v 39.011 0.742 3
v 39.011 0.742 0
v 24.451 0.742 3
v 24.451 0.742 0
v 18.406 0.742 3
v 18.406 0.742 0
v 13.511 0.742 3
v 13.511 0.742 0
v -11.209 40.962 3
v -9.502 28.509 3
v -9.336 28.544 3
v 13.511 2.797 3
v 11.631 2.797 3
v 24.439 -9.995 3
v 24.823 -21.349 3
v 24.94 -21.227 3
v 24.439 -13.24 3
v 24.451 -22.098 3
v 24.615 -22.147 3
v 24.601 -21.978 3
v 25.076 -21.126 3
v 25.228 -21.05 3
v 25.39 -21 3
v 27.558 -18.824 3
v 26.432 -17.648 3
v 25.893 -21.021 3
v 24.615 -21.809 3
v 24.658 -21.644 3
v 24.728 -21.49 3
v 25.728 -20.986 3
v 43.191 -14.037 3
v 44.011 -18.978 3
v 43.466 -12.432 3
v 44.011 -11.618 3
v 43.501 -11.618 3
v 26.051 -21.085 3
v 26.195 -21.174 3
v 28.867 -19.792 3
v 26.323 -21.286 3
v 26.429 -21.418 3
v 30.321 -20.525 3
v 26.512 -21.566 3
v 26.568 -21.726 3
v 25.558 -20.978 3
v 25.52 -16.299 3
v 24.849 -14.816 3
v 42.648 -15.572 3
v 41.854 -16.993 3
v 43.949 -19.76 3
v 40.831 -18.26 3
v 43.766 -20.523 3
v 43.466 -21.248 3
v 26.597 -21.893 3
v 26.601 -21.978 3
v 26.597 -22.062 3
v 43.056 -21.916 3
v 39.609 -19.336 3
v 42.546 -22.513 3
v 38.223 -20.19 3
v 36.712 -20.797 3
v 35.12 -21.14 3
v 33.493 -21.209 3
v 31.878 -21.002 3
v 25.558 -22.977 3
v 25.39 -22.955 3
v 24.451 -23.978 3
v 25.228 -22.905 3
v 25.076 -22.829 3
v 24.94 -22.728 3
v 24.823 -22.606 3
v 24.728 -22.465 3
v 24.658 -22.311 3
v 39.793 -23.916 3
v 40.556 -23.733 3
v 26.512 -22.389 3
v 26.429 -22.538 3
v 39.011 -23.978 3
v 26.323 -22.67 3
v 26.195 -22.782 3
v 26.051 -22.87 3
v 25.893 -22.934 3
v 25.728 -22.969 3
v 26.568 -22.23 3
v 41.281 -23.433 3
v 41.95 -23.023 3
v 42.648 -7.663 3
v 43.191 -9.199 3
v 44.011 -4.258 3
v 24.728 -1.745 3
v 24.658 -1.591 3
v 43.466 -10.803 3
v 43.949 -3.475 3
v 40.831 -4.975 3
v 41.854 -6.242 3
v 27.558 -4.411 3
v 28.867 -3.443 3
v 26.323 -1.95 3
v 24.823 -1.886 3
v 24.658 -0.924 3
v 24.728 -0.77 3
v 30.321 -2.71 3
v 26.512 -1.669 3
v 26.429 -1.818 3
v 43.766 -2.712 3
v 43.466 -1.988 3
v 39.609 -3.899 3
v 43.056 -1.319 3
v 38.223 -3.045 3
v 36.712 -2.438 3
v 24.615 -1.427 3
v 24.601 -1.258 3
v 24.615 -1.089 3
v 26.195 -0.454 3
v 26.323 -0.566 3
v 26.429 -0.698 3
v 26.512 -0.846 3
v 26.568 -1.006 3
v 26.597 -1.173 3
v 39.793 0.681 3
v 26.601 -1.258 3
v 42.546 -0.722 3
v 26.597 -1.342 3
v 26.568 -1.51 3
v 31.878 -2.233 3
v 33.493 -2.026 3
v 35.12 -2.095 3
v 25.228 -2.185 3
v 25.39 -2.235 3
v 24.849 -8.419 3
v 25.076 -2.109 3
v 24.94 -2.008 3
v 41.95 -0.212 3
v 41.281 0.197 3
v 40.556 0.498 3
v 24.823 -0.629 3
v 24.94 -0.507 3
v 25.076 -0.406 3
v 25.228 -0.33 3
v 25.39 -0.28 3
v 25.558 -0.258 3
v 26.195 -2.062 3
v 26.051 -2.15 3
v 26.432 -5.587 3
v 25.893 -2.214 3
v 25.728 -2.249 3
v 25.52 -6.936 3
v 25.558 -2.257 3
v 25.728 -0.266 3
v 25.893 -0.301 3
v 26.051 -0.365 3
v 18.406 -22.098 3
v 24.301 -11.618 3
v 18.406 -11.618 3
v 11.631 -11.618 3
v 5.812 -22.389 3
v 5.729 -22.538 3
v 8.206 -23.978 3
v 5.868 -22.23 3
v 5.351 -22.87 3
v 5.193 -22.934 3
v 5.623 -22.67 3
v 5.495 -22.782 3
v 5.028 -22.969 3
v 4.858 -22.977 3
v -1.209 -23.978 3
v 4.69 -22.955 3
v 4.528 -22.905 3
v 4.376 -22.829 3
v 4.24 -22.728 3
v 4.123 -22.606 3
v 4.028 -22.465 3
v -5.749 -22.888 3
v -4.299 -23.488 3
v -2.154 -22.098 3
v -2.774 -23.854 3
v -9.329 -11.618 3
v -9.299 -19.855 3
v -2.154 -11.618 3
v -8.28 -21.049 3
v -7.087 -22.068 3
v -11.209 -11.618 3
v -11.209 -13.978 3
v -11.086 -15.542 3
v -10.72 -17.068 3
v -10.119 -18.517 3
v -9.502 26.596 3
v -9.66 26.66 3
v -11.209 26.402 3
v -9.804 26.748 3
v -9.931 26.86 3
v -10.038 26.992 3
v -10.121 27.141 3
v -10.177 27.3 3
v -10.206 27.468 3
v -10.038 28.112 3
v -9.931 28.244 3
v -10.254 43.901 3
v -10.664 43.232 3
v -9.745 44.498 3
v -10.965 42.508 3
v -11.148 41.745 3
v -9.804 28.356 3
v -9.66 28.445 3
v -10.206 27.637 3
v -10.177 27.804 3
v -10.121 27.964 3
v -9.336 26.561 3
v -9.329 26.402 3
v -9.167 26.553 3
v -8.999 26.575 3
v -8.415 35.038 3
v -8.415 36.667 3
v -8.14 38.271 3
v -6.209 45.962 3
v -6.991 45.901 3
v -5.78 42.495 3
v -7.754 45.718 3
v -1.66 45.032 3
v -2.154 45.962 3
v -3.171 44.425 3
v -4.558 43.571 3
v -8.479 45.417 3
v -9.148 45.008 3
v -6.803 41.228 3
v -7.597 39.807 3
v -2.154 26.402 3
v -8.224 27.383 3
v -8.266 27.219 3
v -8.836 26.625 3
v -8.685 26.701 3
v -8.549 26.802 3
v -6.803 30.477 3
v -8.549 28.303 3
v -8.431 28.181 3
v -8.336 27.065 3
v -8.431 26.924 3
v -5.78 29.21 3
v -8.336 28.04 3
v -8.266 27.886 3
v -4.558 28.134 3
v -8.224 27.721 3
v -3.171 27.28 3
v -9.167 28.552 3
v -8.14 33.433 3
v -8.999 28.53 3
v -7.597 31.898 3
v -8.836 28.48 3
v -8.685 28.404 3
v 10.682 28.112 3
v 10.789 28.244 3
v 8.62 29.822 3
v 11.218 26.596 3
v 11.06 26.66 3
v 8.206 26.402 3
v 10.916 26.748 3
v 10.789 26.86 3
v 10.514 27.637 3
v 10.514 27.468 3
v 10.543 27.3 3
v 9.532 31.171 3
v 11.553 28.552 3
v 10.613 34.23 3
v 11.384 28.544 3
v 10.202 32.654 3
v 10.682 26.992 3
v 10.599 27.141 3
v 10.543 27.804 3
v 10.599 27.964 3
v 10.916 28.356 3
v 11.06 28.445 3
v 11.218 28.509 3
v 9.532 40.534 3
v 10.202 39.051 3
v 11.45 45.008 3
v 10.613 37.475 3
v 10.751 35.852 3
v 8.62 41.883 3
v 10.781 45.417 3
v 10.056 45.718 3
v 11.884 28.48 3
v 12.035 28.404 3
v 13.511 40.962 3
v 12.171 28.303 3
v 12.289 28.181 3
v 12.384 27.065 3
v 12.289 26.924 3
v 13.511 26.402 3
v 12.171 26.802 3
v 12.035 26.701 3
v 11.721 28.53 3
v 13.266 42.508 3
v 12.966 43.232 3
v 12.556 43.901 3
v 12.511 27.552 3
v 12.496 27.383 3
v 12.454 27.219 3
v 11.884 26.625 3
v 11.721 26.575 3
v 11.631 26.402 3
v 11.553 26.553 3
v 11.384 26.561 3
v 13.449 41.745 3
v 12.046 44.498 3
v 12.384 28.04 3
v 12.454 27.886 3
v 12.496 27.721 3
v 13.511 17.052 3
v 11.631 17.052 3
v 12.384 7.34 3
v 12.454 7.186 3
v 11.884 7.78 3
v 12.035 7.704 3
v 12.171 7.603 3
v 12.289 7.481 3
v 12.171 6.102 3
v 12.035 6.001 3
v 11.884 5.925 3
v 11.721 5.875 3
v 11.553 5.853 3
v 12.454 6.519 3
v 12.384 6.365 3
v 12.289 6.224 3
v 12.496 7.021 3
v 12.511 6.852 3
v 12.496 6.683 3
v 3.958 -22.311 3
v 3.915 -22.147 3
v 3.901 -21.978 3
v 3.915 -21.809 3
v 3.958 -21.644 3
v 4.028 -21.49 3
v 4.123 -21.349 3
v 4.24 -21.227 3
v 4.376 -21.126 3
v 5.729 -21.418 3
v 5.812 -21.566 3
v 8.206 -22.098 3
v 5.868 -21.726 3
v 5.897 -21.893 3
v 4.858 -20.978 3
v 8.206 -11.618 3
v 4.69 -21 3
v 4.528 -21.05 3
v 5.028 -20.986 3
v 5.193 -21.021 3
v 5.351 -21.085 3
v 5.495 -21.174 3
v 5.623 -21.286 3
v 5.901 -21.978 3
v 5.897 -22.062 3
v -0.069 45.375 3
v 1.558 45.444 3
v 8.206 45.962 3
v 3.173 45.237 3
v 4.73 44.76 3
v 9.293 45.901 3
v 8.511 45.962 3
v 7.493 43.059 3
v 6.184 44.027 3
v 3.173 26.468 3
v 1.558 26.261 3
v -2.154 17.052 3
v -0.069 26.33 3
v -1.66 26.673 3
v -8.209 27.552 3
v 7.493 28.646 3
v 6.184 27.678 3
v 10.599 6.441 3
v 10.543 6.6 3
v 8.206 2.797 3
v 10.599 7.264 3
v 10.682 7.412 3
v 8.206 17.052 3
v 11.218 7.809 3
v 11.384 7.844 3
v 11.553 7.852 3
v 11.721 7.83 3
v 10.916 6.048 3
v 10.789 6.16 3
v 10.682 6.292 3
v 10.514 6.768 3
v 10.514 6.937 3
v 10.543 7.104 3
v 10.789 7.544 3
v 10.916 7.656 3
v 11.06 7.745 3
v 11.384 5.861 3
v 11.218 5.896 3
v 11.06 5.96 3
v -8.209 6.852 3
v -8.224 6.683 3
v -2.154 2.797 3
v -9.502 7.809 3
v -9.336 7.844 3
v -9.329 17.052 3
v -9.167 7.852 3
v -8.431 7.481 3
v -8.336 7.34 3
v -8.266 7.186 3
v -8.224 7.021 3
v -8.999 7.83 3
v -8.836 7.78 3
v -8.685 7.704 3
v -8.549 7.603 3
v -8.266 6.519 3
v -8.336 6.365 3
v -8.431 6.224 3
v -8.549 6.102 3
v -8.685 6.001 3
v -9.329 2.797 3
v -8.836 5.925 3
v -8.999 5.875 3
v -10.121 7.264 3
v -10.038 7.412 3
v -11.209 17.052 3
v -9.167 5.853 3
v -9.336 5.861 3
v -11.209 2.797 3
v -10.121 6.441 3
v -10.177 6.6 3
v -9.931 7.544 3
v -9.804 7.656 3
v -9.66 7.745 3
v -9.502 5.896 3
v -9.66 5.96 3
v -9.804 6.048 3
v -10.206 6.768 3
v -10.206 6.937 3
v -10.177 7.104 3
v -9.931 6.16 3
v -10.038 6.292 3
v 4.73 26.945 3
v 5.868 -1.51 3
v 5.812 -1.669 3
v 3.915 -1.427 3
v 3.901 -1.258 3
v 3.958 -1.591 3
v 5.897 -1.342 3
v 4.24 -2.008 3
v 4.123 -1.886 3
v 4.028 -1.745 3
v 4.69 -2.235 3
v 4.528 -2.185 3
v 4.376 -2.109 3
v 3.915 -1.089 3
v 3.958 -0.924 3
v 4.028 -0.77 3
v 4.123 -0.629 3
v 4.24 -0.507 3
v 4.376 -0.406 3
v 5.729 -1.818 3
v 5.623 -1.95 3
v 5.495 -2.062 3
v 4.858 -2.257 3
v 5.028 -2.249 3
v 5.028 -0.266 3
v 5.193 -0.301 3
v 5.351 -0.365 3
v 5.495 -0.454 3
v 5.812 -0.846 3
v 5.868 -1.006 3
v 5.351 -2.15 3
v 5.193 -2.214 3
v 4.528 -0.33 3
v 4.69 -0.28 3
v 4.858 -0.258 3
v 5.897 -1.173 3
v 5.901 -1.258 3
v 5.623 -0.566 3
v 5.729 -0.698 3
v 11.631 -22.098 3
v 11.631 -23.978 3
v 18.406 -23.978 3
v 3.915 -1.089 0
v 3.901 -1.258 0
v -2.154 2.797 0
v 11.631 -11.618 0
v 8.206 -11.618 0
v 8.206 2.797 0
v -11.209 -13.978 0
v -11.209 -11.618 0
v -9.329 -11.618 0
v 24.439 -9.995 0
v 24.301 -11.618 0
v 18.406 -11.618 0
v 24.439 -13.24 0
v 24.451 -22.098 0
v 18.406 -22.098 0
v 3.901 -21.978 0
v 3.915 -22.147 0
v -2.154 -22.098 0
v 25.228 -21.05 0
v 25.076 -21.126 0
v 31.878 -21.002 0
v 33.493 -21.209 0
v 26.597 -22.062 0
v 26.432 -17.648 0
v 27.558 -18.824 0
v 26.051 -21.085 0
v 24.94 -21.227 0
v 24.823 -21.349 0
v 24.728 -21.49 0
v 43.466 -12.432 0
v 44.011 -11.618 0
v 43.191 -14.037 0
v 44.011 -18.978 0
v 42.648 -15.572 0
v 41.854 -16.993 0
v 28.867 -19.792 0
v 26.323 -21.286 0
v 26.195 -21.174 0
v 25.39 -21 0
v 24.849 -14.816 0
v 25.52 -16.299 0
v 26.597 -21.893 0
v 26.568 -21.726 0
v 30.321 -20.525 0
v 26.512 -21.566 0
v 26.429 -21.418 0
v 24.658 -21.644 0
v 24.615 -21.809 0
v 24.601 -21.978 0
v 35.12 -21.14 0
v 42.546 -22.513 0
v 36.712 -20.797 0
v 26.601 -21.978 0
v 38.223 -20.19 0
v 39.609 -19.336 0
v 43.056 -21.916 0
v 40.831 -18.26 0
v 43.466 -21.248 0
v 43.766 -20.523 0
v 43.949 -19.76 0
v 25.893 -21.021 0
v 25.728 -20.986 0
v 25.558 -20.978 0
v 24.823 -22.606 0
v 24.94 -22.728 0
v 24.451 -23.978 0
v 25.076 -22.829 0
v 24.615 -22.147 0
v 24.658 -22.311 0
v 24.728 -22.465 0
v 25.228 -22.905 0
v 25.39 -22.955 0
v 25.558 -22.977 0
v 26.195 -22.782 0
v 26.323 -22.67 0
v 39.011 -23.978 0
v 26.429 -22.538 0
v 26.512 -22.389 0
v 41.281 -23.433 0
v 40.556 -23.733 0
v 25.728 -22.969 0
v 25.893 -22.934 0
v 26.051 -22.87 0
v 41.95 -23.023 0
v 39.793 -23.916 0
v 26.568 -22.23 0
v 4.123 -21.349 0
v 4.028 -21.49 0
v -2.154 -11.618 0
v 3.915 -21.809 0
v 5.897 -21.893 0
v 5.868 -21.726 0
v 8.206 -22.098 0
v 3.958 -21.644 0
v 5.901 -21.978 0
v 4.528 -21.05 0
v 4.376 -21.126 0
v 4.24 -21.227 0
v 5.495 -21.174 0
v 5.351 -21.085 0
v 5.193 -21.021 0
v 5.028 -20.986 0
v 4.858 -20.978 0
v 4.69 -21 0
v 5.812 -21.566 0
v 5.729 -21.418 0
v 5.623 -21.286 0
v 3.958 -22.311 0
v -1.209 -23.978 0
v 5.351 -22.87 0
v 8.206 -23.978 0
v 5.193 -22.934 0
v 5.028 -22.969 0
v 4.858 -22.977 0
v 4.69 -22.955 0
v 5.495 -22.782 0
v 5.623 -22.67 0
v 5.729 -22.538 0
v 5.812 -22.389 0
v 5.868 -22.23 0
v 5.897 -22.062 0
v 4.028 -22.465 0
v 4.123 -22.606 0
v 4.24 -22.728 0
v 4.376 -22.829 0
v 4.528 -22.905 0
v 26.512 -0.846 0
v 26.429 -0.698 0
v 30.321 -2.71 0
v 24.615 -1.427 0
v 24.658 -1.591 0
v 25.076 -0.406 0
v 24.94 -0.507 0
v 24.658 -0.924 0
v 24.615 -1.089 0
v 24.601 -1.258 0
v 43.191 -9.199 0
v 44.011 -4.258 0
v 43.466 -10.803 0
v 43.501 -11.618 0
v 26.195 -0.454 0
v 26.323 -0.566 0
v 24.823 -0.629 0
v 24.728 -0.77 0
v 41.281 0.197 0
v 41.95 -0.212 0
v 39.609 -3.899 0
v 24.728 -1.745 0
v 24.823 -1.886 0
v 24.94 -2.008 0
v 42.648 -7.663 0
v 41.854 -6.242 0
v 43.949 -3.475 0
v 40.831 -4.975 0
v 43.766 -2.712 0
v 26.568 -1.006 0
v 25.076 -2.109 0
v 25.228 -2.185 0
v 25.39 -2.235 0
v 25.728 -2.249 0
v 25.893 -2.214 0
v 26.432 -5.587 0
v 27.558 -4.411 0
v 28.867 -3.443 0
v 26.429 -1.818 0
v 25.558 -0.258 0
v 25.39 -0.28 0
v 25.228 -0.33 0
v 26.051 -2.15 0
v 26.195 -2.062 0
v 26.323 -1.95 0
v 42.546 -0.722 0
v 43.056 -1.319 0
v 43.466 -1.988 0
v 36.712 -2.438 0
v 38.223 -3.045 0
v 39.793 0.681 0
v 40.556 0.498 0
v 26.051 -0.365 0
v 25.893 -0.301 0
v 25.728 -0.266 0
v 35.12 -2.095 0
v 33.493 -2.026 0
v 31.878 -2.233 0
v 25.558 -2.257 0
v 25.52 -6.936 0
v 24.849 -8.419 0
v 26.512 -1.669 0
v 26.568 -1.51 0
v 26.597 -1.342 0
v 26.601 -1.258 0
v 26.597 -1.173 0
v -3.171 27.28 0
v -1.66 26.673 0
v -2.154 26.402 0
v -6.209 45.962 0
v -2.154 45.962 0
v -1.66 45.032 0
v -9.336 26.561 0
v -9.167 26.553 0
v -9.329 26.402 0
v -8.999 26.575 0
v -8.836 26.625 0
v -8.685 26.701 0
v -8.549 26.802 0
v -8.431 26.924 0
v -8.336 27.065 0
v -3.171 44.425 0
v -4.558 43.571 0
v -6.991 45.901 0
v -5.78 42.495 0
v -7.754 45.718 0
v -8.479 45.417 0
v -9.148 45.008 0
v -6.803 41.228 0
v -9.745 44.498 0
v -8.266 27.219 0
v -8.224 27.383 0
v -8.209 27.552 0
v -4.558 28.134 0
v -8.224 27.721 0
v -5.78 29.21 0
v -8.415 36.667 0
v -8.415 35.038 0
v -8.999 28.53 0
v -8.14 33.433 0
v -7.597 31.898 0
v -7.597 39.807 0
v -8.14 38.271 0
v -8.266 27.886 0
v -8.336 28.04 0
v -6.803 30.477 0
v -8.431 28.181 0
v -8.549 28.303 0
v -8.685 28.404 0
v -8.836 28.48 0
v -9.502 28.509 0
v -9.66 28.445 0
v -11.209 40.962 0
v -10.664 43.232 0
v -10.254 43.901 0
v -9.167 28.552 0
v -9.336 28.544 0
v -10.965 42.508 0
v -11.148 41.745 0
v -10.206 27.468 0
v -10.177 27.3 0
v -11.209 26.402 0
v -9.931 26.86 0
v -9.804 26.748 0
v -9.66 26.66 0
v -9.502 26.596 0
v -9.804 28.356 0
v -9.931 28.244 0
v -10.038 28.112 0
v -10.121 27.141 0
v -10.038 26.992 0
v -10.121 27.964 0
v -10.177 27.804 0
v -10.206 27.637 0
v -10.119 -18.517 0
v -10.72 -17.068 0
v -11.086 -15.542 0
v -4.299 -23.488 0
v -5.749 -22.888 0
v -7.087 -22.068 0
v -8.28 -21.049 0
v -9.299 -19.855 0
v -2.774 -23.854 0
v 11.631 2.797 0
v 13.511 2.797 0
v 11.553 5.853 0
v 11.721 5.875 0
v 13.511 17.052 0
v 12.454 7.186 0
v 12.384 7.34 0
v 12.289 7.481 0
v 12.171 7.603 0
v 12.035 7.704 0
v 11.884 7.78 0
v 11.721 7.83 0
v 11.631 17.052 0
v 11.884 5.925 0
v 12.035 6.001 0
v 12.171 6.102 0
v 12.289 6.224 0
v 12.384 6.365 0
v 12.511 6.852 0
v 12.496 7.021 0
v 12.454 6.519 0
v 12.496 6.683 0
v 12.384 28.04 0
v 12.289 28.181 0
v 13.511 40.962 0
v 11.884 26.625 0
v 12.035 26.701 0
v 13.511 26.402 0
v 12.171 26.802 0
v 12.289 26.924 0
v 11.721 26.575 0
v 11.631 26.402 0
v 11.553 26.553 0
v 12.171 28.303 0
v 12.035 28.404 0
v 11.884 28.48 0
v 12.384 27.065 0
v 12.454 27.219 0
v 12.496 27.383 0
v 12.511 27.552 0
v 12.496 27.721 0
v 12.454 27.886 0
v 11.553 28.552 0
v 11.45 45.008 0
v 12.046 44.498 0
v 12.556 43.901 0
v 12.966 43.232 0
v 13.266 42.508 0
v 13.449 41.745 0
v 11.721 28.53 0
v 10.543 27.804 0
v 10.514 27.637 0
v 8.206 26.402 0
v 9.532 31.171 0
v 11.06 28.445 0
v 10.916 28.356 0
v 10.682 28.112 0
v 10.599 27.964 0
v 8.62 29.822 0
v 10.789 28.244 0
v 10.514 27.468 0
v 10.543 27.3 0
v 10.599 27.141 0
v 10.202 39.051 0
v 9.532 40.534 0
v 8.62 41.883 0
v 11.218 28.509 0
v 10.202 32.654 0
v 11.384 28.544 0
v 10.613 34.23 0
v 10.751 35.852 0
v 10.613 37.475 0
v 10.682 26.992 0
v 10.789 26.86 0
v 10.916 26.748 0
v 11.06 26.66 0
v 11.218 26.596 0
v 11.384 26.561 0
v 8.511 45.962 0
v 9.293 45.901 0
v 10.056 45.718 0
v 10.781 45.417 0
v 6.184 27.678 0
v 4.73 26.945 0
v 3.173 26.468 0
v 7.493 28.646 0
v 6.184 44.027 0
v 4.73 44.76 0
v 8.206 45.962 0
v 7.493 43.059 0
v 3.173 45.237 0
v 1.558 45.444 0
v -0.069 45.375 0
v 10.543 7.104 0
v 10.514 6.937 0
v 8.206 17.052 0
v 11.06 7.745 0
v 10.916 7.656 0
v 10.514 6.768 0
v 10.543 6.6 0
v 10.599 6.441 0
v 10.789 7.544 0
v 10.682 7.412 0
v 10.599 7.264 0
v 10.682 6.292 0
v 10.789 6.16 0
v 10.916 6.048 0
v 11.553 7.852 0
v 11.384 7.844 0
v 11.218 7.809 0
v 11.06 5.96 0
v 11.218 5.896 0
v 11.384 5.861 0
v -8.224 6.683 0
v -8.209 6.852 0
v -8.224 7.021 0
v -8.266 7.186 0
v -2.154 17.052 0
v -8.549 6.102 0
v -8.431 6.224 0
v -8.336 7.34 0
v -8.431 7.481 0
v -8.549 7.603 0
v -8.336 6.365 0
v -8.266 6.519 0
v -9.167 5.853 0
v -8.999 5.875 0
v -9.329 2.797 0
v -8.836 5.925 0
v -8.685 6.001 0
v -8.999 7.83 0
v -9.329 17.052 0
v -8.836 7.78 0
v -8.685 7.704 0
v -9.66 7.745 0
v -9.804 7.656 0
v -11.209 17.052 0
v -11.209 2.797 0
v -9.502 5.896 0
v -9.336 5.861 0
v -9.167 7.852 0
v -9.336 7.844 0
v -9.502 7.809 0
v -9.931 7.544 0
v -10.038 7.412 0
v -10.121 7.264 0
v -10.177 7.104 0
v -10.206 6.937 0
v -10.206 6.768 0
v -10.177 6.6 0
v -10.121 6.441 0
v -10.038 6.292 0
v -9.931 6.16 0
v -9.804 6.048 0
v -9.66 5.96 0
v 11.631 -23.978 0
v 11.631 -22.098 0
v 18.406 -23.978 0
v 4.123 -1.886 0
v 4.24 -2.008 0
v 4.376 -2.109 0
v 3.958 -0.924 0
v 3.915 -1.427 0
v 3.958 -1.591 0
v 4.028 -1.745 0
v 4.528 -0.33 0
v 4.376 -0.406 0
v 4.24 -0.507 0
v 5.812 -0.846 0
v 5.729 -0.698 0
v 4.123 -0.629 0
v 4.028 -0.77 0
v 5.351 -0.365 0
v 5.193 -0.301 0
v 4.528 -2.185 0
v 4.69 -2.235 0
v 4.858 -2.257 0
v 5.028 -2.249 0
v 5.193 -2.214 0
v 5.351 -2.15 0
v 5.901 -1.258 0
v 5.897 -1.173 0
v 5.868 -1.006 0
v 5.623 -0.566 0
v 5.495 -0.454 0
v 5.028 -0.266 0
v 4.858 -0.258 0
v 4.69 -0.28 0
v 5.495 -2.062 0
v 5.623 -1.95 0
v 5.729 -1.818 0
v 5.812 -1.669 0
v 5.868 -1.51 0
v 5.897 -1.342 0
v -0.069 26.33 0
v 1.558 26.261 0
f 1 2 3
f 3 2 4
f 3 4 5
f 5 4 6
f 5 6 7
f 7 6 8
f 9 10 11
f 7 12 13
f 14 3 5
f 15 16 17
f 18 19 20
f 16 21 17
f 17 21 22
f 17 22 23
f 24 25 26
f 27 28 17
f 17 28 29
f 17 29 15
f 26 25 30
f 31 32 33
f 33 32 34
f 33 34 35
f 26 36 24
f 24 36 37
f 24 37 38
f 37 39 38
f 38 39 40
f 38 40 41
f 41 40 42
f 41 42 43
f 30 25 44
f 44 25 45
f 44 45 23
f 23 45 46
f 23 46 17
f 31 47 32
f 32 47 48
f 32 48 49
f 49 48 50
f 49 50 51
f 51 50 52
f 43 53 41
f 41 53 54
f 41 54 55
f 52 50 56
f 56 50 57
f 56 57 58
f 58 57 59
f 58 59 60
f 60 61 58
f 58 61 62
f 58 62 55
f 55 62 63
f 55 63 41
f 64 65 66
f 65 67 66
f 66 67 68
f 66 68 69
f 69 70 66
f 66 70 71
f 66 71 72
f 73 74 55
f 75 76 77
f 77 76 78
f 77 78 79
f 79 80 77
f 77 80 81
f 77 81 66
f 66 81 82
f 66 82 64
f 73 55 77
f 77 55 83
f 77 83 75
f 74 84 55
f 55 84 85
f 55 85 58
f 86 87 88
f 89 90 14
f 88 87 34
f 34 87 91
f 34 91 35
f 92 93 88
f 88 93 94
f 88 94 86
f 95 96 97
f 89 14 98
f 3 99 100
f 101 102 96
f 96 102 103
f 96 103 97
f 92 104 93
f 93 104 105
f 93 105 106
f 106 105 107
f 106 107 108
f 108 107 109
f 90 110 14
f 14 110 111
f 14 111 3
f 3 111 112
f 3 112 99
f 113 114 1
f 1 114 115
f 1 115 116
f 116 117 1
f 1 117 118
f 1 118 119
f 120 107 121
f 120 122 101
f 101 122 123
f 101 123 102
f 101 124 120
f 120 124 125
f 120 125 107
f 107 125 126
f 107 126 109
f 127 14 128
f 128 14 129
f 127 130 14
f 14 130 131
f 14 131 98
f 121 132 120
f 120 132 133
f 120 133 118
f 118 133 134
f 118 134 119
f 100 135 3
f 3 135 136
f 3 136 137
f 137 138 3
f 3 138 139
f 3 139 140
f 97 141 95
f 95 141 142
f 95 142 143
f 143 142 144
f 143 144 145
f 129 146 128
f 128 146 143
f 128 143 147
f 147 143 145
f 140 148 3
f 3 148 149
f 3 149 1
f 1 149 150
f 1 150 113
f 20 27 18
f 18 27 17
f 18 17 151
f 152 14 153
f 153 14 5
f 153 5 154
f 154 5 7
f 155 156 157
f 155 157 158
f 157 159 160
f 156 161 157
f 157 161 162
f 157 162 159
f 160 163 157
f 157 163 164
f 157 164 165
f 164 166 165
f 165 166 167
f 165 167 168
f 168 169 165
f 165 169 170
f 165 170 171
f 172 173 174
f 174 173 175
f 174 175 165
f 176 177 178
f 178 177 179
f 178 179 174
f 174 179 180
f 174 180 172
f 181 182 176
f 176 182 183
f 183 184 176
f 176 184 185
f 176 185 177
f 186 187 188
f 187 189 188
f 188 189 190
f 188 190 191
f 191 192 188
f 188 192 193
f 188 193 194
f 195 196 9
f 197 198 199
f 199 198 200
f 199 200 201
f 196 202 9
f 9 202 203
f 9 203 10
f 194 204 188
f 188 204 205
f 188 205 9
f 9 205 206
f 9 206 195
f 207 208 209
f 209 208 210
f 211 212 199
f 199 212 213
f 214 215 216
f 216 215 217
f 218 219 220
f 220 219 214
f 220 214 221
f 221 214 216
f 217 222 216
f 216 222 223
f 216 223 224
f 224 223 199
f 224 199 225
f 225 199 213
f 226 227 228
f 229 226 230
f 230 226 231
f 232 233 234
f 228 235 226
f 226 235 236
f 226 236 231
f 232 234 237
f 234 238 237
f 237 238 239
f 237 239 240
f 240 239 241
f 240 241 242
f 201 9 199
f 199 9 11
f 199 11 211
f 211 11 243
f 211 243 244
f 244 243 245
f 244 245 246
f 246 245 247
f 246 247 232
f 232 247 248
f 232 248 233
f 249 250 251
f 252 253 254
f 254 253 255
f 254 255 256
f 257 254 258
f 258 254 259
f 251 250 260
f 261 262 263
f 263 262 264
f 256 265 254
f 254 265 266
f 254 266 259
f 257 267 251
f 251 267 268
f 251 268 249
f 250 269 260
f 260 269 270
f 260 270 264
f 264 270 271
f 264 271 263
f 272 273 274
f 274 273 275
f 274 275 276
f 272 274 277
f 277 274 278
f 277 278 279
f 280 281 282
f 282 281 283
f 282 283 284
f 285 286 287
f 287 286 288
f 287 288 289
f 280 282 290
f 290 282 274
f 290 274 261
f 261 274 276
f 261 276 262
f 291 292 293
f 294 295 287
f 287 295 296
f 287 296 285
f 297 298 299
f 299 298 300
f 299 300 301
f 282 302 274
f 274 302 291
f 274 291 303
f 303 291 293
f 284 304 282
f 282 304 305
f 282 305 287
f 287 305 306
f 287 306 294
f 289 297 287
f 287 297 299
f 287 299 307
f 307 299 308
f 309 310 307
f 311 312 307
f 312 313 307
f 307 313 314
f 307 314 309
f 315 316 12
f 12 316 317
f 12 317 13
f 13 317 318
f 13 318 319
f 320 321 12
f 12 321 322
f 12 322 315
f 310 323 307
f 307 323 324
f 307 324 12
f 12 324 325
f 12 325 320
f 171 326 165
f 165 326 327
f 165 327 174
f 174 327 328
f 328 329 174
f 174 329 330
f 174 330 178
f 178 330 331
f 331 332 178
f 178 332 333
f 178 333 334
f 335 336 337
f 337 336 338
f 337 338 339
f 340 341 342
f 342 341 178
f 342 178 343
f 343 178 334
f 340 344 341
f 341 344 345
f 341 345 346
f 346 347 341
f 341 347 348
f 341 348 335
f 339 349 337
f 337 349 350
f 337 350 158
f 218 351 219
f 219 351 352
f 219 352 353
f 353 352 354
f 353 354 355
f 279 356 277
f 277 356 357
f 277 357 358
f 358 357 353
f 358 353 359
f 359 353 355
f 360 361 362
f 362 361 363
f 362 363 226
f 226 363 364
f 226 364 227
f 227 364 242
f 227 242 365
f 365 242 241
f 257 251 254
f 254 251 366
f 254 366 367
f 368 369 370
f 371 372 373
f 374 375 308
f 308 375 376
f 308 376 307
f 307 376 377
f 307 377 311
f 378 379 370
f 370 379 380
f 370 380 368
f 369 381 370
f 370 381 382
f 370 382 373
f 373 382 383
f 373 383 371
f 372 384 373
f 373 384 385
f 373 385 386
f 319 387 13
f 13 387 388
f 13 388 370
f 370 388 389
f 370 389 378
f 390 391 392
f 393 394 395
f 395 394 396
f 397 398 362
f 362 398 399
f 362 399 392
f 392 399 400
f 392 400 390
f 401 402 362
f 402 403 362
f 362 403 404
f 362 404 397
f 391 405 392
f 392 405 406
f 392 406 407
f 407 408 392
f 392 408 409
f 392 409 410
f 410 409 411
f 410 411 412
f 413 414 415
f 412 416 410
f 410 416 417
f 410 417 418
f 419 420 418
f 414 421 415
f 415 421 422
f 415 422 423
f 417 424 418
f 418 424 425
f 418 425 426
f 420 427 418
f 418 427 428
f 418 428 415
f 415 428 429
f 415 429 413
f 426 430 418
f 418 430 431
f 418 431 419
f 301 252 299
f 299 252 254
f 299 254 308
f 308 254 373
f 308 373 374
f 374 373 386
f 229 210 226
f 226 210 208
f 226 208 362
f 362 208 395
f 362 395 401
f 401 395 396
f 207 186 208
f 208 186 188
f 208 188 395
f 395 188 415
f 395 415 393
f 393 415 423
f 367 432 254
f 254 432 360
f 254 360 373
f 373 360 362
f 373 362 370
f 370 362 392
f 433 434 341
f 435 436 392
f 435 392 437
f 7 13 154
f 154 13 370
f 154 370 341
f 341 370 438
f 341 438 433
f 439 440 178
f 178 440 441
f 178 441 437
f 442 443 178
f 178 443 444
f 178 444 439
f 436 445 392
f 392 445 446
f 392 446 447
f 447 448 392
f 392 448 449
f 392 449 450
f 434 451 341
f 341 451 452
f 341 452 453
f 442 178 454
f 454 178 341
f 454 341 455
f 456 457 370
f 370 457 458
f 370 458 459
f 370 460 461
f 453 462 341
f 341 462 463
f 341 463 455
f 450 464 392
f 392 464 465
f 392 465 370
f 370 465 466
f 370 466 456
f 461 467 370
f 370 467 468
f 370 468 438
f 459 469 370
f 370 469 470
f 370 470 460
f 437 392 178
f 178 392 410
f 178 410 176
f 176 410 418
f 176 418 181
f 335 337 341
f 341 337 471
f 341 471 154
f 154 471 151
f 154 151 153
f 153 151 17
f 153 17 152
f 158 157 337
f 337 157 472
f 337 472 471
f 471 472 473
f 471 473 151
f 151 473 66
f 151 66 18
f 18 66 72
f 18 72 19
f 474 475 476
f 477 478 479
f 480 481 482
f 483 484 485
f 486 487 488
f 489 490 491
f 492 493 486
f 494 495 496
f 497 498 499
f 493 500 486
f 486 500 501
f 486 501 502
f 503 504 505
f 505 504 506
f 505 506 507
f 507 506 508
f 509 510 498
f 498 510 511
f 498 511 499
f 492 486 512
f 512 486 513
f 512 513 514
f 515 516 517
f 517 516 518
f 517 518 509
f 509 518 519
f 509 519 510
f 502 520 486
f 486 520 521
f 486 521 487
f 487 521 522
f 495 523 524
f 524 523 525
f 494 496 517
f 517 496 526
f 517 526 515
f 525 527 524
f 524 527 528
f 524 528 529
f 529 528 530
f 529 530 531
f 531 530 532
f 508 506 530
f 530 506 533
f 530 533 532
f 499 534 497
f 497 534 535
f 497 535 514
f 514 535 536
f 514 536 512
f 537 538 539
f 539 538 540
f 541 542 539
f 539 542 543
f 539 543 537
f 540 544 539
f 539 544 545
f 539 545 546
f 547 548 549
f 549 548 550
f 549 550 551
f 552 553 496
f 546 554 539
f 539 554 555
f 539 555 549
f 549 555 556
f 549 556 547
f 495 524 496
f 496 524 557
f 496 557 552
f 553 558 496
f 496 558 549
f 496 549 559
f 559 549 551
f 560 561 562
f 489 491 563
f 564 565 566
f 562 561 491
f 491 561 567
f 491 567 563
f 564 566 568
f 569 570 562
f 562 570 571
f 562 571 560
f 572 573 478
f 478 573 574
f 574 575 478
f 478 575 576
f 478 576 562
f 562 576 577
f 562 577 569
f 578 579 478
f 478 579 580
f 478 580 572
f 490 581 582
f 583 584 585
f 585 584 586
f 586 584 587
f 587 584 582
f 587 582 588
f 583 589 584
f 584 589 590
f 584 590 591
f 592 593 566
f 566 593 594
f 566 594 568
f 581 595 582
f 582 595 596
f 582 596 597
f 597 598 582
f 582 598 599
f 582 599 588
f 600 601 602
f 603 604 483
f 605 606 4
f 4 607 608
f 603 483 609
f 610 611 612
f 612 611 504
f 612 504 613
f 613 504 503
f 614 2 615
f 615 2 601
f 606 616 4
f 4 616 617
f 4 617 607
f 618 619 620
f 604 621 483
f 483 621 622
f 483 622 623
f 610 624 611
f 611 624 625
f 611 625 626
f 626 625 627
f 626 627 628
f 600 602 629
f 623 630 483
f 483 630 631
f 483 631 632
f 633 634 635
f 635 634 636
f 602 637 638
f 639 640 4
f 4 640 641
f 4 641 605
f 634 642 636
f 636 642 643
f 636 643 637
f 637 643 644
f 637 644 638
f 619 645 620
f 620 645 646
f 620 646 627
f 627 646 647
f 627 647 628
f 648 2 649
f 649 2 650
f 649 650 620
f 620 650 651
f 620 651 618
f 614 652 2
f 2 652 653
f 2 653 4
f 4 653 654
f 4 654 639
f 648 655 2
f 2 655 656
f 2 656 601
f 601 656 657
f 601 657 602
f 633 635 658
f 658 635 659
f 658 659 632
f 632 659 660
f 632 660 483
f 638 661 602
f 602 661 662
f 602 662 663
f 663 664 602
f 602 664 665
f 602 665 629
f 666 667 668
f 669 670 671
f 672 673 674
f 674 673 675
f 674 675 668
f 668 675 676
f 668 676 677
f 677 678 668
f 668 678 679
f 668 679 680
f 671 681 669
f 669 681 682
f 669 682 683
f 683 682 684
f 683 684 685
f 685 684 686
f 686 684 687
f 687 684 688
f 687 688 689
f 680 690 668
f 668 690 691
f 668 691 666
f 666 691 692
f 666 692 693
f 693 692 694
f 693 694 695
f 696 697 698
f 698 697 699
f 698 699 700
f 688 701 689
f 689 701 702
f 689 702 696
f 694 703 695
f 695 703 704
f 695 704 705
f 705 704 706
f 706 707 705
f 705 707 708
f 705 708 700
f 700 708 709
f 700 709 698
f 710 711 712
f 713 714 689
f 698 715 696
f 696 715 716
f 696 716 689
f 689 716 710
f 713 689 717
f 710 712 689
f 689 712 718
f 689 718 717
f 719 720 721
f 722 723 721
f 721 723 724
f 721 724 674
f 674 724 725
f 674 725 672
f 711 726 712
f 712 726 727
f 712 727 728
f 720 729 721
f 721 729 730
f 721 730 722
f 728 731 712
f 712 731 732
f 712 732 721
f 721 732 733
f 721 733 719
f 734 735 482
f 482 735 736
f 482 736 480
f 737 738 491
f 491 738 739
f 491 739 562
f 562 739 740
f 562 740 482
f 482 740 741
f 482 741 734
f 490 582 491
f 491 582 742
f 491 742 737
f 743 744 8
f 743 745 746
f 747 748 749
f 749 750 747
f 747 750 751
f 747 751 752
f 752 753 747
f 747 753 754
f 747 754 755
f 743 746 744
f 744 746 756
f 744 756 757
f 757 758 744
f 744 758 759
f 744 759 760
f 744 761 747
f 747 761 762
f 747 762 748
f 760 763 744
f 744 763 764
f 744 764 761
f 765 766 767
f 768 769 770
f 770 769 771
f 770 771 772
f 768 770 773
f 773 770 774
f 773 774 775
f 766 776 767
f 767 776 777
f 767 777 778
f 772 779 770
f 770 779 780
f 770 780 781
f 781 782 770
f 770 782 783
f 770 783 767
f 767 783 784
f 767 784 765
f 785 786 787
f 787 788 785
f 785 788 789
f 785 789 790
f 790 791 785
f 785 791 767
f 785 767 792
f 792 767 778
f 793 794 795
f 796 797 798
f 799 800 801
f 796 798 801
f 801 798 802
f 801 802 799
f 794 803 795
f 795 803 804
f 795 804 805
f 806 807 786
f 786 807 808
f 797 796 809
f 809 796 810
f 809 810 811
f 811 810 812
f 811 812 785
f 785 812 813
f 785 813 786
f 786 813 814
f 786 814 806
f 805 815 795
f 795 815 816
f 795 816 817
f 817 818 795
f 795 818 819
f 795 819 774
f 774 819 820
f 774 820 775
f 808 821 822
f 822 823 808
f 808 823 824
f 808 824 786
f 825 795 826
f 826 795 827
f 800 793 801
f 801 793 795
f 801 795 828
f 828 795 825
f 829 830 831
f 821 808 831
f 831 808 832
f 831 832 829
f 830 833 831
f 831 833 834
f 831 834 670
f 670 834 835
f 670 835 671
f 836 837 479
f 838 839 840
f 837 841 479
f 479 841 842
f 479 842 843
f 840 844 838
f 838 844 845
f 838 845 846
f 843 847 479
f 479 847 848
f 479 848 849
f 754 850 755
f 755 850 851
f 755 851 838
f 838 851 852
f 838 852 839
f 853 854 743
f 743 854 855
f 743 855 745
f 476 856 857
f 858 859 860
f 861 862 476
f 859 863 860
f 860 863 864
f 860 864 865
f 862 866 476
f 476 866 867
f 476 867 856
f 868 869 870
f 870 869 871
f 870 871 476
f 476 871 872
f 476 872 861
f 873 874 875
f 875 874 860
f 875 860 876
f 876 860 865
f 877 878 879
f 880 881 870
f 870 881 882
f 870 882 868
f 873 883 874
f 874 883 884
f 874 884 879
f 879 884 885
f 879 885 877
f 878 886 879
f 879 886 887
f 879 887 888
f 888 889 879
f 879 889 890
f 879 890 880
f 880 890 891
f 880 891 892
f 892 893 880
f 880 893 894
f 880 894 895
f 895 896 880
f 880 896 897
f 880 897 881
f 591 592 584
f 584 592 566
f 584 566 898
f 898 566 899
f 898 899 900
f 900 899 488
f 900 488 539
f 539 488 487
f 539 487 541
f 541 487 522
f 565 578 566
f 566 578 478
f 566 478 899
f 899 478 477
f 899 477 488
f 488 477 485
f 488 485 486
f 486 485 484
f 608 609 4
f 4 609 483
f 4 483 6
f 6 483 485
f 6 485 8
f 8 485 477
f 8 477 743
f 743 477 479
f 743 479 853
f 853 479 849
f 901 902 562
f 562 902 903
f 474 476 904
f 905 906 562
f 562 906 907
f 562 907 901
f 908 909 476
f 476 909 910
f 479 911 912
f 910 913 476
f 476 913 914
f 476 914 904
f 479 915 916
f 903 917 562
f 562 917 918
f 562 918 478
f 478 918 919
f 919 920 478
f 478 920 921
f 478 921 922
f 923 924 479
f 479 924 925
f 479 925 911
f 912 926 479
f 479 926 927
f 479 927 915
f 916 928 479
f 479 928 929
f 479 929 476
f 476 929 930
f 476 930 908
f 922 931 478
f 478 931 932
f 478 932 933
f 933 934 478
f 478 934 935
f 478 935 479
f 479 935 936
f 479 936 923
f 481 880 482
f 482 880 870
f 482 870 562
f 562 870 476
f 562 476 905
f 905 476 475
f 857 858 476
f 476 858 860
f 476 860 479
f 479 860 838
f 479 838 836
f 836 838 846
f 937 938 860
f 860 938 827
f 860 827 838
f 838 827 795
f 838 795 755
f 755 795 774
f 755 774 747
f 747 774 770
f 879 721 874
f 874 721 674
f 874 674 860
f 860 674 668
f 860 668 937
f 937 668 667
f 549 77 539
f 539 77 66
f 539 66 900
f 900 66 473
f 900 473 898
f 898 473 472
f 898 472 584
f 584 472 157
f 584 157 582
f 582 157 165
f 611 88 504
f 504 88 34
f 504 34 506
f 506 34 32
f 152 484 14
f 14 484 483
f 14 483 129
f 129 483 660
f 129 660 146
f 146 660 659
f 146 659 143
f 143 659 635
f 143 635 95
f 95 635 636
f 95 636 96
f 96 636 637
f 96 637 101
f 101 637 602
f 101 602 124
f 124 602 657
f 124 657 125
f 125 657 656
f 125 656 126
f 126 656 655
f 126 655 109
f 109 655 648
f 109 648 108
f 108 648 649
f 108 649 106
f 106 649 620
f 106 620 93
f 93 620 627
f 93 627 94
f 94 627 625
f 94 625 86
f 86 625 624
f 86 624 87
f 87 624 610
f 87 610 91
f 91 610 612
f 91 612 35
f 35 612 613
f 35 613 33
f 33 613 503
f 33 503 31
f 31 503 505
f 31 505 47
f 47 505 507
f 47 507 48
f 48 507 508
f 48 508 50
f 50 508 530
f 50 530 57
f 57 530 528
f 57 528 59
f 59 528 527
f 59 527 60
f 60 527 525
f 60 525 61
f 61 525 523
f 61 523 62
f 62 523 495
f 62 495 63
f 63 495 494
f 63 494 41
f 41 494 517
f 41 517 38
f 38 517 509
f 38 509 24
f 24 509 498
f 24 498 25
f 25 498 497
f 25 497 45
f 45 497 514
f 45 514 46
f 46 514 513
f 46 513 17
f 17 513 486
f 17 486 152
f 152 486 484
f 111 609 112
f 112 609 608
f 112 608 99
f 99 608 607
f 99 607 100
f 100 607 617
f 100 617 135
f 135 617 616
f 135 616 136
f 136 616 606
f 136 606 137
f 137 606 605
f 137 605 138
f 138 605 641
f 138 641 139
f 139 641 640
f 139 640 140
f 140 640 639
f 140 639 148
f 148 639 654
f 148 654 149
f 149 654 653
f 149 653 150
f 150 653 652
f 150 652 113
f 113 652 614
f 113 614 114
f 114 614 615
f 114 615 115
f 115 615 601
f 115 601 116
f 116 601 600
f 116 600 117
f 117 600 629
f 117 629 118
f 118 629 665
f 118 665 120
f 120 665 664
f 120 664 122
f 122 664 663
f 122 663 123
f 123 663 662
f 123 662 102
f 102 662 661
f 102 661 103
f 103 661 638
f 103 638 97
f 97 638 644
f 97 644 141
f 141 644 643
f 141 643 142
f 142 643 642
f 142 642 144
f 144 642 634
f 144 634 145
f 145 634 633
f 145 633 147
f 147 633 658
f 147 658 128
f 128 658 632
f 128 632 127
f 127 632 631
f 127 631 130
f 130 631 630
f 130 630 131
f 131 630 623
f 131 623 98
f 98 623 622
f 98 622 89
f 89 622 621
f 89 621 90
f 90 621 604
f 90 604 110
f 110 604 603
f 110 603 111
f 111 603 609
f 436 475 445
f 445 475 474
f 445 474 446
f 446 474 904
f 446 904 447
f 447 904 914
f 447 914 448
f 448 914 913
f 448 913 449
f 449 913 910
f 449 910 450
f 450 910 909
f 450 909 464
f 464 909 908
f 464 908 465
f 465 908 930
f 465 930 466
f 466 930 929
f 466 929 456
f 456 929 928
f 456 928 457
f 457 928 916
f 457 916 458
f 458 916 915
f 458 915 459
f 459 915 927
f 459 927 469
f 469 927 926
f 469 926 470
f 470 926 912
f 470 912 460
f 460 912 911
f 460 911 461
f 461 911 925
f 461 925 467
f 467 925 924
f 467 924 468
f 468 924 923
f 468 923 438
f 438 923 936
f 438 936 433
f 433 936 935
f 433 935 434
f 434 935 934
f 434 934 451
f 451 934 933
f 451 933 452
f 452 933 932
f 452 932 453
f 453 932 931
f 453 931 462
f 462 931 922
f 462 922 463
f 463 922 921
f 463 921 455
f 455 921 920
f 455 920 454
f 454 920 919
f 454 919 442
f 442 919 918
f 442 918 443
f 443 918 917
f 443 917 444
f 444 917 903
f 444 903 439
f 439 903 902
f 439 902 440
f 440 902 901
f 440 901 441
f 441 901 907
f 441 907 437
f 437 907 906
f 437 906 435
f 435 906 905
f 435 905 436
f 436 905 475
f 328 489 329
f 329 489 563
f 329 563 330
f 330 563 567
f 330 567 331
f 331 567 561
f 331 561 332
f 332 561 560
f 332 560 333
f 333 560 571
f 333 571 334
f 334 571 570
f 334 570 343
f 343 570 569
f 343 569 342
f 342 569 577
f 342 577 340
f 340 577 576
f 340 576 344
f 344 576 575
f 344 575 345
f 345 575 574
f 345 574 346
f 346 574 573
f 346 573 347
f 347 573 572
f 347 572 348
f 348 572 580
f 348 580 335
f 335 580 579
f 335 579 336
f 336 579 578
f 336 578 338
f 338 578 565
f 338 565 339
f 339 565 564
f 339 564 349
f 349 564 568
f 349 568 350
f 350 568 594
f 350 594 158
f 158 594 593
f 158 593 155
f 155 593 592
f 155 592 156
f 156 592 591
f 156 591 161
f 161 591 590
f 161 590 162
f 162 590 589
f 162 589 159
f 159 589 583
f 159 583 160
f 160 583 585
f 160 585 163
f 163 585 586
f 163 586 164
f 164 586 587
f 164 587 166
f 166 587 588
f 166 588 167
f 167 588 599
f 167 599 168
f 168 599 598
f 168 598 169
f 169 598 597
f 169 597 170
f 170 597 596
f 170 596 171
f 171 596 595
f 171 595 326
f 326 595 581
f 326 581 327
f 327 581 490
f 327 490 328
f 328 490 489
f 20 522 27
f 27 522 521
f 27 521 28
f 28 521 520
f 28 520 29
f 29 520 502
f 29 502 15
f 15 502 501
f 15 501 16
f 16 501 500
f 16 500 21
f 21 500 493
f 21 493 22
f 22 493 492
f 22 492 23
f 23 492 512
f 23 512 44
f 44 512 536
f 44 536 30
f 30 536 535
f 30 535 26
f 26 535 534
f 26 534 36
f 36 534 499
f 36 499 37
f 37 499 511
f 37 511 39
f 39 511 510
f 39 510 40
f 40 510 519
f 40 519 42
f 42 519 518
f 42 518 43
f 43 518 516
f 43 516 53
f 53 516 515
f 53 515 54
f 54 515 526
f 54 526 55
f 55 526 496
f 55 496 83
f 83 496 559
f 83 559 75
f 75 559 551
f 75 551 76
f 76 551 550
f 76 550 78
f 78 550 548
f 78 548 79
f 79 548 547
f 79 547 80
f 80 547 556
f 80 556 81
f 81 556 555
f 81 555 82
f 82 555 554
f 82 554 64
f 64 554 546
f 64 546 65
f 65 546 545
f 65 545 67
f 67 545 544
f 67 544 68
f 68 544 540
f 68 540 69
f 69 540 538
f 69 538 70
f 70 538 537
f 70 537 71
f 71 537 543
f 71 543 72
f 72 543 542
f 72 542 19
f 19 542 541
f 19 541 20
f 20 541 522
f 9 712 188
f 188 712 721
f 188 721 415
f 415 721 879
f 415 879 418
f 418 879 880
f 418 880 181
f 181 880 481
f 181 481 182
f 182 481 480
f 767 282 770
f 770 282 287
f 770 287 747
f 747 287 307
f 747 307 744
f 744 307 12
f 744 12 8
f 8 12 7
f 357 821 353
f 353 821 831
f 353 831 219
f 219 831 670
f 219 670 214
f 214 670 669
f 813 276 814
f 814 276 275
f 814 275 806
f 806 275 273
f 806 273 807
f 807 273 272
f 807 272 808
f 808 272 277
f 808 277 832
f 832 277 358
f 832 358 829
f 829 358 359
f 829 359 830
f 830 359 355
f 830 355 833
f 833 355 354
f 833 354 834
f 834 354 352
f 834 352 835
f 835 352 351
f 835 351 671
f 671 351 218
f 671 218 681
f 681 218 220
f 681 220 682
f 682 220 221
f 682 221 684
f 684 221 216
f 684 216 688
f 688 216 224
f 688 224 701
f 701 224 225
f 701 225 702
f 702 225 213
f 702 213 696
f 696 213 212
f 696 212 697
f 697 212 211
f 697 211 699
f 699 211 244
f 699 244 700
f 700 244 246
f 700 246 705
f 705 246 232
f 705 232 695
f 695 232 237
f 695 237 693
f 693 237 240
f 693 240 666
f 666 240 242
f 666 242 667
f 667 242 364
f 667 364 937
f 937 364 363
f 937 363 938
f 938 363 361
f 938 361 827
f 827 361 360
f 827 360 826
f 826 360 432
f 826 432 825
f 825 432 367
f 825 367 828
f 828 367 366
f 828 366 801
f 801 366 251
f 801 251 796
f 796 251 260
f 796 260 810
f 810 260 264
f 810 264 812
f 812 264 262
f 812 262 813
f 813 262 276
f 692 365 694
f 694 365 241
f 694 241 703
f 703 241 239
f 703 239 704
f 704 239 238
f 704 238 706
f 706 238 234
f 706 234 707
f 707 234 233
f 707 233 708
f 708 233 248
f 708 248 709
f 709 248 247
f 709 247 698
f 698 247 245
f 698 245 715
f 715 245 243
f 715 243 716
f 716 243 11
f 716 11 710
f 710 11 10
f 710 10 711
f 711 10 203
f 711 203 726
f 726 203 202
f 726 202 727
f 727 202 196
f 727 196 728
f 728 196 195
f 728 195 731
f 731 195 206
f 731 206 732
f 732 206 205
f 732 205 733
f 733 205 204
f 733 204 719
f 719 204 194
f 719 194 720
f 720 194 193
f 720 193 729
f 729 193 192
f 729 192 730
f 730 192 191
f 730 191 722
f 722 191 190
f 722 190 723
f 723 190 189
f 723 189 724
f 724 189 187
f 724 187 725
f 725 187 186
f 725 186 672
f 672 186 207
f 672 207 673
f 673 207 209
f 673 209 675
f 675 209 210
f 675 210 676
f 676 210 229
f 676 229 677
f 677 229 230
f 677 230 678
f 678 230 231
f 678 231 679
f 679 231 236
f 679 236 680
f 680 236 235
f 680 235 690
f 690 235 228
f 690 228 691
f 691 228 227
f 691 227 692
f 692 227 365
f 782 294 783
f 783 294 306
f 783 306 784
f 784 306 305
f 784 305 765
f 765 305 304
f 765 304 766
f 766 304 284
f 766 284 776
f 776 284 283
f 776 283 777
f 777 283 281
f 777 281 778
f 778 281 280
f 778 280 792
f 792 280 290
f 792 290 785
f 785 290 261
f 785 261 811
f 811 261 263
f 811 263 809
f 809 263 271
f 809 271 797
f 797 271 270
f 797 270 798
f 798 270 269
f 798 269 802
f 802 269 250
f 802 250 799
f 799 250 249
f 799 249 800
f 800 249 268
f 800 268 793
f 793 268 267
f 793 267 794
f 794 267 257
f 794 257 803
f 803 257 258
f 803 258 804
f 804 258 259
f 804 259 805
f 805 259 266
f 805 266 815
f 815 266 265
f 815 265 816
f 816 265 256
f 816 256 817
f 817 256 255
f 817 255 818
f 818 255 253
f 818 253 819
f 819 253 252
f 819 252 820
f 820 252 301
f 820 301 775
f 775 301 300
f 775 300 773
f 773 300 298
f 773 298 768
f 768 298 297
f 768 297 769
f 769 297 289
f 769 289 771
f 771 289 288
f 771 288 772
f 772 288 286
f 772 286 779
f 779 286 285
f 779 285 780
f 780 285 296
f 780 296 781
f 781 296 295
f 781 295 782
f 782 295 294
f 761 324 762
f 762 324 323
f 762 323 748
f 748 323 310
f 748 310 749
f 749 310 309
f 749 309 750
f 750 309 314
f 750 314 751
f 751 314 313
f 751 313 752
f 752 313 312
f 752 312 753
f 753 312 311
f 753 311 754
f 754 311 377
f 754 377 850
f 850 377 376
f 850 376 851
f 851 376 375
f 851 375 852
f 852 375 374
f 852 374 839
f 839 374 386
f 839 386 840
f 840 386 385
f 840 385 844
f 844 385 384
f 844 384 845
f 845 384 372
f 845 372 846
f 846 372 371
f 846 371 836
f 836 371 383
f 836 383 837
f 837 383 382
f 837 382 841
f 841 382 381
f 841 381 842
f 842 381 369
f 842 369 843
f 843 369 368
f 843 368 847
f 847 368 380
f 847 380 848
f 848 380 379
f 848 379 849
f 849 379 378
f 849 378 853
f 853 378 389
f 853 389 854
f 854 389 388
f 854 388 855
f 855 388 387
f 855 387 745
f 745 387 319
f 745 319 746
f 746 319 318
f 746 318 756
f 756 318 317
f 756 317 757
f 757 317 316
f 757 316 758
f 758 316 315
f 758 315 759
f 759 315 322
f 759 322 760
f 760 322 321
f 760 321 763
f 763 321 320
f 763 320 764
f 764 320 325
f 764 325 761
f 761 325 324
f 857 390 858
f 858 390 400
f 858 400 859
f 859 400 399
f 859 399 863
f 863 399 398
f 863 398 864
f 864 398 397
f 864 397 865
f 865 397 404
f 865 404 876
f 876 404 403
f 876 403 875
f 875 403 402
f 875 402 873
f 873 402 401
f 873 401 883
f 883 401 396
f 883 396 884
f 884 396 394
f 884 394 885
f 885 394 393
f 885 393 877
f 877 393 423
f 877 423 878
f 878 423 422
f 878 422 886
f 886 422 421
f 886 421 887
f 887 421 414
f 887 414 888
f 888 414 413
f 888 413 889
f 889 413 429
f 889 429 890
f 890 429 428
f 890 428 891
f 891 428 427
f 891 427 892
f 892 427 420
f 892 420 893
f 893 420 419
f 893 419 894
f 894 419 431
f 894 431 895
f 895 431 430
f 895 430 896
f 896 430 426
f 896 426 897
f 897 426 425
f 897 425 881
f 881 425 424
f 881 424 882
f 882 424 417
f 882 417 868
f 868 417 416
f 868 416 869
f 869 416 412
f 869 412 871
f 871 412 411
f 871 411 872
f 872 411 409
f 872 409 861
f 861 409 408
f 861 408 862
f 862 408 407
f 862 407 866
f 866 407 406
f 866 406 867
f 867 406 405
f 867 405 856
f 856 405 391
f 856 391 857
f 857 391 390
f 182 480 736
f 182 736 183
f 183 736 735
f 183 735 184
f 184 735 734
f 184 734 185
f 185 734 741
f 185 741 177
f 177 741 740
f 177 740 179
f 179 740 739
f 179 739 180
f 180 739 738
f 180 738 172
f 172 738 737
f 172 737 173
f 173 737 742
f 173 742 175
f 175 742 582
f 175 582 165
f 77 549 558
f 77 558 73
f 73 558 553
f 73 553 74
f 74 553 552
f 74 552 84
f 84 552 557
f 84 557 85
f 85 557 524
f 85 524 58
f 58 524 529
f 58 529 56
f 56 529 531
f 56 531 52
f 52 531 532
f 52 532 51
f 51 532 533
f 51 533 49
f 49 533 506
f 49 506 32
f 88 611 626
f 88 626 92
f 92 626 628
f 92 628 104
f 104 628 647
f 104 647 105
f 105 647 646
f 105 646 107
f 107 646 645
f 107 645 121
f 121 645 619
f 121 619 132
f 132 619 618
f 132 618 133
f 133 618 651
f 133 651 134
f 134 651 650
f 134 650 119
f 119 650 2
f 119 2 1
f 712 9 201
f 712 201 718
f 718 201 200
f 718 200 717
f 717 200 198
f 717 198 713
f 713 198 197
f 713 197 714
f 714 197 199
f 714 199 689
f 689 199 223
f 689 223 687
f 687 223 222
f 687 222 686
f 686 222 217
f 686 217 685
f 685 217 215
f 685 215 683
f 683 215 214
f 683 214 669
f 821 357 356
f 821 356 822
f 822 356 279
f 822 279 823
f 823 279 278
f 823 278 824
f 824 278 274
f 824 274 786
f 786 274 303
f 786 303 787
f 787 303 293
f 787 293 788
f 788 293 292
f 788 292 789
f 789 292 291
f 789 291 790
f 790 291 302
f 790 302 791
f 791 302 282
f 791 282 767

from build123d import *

# Parameters (mm, degrees)
SKETCH_1_W          = 45.22
SKETCH_1_H          = 24.72
SKETCH_1_R          = 9.6
SKETCH_1_R_2        = 1
EXTRUDE_1_DEPTH     = 3
SKETCH_2_W          = 3
SKETCH_2_H          = 24.72
EXTRUDE_2_DEPTH     = 10
SKETCH_3_W          = 24.72
SKETCH_3_H          = 3
EXTRUDE_3_DEPTH     = 45.22
SKETCH_4_R          = 9.6
SKETCH_4_R_2        = 1
CUT_EXTRUDE_1_DEPTH = 4
FILLET_3_R          = 10
FILLET_4_R          = 5
FILLET_5_R          = 5
FILLET_6_R          = 5
FILLET_7_R          = 5


with BuildPart() as part:
    # 草图1 → 凸台-拉伸1 (new body)
    with BuildSketch(Plane.XY):
        with Locations((21.400674487, -11.617565982)):
            Rectangle(SKETCH_1_W, SKETCH_1_H)
        with Locations((33.900674487, -11.617565982)):
            Circle(SKETCH_1_R, mode=Mode.SUBTRACT)
        with Locations((25.600674487, -1.257565982)):
            Circle(SKETCH_1_R_2, mode=Mode.SUBTRACT)
        with Locations((4.900674487, -1.257565982)):
            Circle(SKETCH_1_R_2, mode=Mode.SUBTRACT)
        with Locations((4.900674487, -21.977565982)):
            Circle(SKETCH_1_R_2, mode=Mode.SUBTRACT)
        with Locations((25.600674487, -21.977565982)):
            Circle(SKETCH_1_R_2, mode=Mode.SUBTRACT)
    extrude(amount=EXTRUDE_1_DEPTH)

    # 草图2 → 凸台-拉伸2 (add)
    with BuildSketch(Plane.ZY.offset(1.209325513)):
        with Locations((1.5, -11.617565982)):
            Rectangle(SKETCH_2_W, SKETCH_2_H)
    extrude(amount=EXTRUDE_2_DEPTH)

    # 草图3 → 凸台-拉伸3 (add)
    with BuildSketch(Plane(origin=(0, 0.742434018, 0), x_dir=(1, 0, 0), z_dir=(0, 1, 0))):
        with Locations((1.150674487, -1.5)):
            Rectangle(SKETCH_3_W, SKETCH_3_H)
    extrude(amount=EXTRUDE_3_DEPTH)

    # 草图4 → 切除-拉伸1 (cut)
    with BuildSketch(Plane.XY.offset(3)):
        with Locations((1.150674487, 35.852434018)):
            Circle(SKETCH_4_R)
        with Locations((-9.209325513, 27.552434018)):
            Circle(SKETCH_4_R_2)
        with Locations((11.510674487, 27.552434018)):
            Circle(SKETCH_4_R_2)
        with Locations((11.510674487, 6.852434018)):
            Circle(SKETCH_4_R_2)
        with Locations((-9.209325513, 6.852434018)):
            Circle(SKETCH_4_R_2)
    extrude(amount=-CUT_EXTRUDE_1_DEPTH, mode=Mode.SUBTRACT)

    # 圆角3
    fillet_3_edges = [part.edges().sort_by_distance(p)[0] for p in [
        (-11.209325513, -23.977565982, 1.5),
    ]]
    fillet(fillet_3_edges, radius=FILLET_3_R)

    # 圆角4
    fillet_4_edges = [part.edges().sort_by_distance(p)[0] for p in [
        (44.010674487, -23.977565982, 1.5),
    ]]
    fillet(fillet_4_edges, radius=FILLET_4_R)

    # 圆角5
    fillet_5_edges = [part.edges().sort_by_distance(p)[0] for p in [
        (44.010674487, 0.742434018, 1.5),
    ]]
    fillet(fillet_5_edges, radius=FILLET_5_R)

    # 圆角6
    fillet_6_edges = [part.edges().sort_by_distance(p)[0] for p in [
        (-11.209325513, 45.962434018, 1.5),
    ]]
    fillet(fillet_6_edges, radius=FILLET_6_R)

    # 圆角7
    fillet_7_edges = [part.edges().sort_by_distance(p)[0] for p in [
        (13.510674487, 45.962434018, 1.5),
    ]]
    fillet(fillet_7_edges, radius=FILLET_7_R)


solid = part.part
